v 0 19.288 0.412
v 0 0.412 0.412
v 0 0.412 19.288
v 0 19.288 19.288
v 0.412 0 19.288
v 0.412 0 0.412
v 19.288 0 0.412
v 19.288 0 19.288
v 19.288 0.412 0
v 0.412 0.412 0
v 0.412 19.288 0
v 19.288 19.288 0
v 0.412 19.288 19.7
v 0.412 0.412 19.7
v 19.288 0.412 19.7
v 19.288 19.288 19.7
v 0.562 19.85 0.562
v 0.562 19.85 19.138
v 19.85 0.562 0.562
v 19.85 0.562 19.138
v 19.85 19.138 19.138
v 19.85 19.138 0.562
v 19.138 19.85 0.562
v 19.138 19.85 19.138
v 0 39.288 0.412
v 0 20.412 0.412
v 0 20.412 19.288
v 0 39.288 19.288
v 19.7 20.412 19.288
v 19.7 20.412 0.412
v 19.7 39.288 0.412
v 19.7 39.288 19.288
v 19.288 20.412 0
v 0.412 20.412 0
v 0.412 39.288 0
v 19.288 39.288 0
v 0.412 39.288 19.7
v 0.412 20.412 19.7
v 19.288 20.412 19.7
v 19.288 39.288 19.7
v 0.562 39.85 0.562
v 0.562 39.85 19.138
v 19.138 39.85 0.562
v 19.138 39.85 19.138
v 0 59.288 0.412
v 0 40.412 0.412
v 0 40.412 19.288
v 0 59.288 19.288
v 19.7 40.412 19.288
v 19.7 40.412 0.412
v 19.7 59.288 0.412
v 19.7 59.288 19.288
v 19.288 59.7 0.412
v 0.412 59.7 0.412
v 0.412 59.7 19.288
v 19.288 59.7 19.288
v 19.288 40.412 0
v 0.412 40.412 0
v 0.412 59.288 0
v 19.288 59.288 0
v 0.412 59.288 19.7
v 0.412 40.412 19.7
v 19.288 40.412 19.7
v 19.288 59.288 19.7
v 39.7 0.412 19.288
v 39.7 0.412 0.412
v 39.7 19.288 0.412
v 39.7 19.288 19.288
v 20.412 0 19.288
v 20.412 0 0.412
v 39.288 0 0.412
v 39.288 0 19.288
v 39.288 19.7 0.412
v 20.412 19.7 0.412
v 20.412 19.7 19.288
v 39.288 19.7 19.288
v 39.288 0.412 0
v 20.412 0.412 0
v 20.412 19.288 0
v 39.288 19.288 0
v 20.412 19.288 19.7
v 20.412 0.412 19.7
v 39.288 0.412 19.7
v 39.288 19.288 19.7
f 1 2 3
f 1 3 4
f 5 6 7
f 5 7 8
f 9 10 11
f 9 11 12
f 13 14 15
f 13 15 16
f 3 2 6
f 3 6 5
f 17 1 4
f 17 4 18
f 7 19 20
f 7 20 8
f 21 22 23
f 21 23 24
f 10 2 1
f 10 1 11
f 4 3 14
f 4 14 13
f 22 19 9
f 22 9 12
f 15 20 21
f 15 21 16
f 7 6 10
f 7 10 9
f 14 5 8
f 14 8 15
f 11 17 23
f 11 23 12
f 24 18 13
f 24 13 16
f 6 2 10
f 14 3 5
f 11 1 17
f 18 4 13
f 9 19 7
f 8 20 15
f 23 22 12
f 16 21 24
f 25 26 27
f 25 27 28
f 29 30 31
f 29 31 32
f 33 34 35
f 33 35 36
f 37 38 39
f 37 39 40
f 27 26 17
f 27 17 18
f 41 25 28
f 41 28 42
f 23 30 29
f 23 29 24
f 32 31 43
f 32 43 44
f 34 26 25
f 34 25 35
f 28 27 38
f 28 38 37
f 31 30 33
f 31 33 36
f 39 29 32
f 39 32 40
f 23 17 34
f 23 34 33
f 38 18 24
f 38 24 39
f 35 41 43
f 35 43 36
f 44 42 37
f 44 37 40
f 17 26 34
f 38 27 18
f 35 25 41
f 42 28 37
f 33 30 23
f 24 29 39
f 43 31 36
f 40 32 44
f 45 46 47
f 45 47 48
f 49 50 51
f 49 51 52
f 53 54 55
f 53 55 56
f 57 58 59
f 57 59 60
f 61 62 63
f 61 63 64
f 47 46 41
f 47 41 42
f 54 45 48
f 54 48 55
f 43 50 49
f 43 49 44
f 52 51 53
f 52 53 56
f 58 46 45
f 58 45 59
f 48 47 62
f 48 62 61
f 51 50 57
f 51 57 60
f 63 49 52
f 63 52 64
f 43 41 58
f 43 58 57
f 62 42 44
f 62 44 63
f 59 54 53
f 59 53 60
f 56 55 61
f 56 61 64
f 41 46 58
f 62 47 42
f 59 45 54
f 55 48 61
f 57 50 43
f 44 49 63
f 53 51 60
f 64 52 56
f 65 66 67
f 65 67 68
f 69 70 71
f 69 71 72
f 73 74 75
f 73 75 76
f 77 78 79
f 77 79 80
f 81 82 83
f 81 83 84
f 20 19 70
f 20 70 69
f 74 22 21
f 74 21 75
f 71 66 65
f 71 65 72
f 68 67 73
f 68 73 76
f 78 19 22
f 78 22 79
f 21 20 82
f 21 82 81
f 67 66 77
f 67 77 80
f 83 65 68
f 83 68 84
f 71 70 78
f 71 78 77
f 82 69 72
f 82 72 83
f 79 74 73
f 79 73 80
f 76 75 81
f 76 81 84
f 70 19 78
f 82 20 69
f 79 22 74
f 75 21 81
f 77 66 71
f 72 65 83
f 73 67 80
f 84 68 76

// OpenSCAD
// Wongo piece 16: L. GPL-3.0.
// 20 mm lattice; 0.15 mm inward surface clearance; 0.5 mm chamfer.
// Mesh is identical to the STL; changing unit scales the complete finished mesh.
unit=20;
scale([unit/20,unit/20,unit/20]) polyhedron(points=[[0,19.28786797,0.41213203],[0,0.41213203,0.41213203],[0,0.41213203,19.28786797],[0,19.28786797,19.28786797],[0.41213203,0,19.28786797],[0.41213203,0,0.41213203],[19.28786797,0,0.41213203],[19.28786797,0,19.28786797],[19.28786797,0.41213203,0],[0.41213203,0.41213203,0],[0.41213203,19.28786797,0],[19.28786797,19.28786797,0],[0.41213203,19.28786797,19.7],[0.41213203,0.41213203,19.7],[19.28786797,0.41213203,19.7],[19.28786797,19.28786797,19.7],[0.56213203,19.85,0.56213203],[0.56213203,19.85,19.13786797],[19.85,0.56213203,0.56213203],[19.85,0.56213203,19.13786797],[19.85,19.13786797,19.13786797],[19.85,19.13786797,0.56213203],[19.13786797,19.85,0.56213203],[19.13786797,19.85,19.13786797],[0,39.28786797,0.41213203],[0,20.41213203,0.41213203],[0,20.41213203,19.28786797],[0,39.28786797,19.28786797],[19.7,20.41213203,19.28786797],[19.7,20.41213203,0.41213203],[19.7,39.28786797,0.41213203],[19.7,39.28786797,19.28786797],[19.28786797,20.41213203,0],[0.41213203,20.41213203,0],[0.41213203,39.28786797,0],[19.28786797,39.28786797,0],[0.41213203,39.28786797,19.7],[0.41213203,20.41213203,19.7],[19.28786797,20.41213203,19.7],[19.28786797,39.28786797,19.7],[0.56213203,39.85,0.56213203],[0.56213203,39.85,19.13786797],[19.13786797,39.85,0.56213203],[19.13786797,39.85,19.13786797],[0,59.28786797,0.41213203],[0,40.41213203,0.41213203],[0,40.41213203,19.28786797],[0,59.28786797,19.28786797],[19.7,40.41213203,19.28786797],[19.7,40.41213203,0.41213203],[19.7,59.28786797,0.41213203],[19.7,59.28786797,19.28786797],[19.28786797,59.7,0.41213203],[0.41213203,59.7,0.41213203],[0.41213203,59.7,19.28786797],[19.28786797,59.7,19.28786797],[19.28786797,40.41213203,0],[0.41213203,40.41213203,0],[0.41213203,59.28786797,0],[19.28786797,59.28786797,0],[0.41213203,59.28786797,19.7],[0.41213203,40.41213203,19.7],[19.28786797,40.41213203,19.7],[19.28786797,59.28786797,19.7],[39.7,0.41213203,19.28786797],[39.7,0.41213203,0.41213203],[39.7,19.28786797,0.41213203],[39.7,19.28786797,19.28786797],[20.41213203,0,19.28786797],[20.41213203,0,0.41213203],[39.28786797,0,0.41213203],[39.28786797,0,19.28786797],[39.28786797,19.7,0.41213203],[20.41213203,19.7,0.41213203],[20.41213203,19.7,19.28786797],[39.28786797,19.7,19.28786797],[39.28786797,0.41213203,0],[20.41213203,0.41213203,0],[20.41213203,19.28786797,0],[39.28786797,19.28786797,0],[20.41213203,19.28786797,19.7],[20.41213203,0.41213203,19.7],[39.28786797,0.41213203,19.7],[39.28786797,19.28786797,19.7]],faces=[[2,1,0],[3,2,0],[6,5,4],[7,6,4],[10,9,8],[11,10,8],[14,13,12],[15,14,12],[5,1,2],[4,5,2],[3,0,16],[17,3,16],[19,18,6],[7,19,6],[22,21,20],[23,22,20],[0,1,9],[10,0,9],[13,2,3],[12,13,3],[8,18,21],[11,8,21],[20,19,14],[15,20,14],[9,5,6],[8,9,6],[7,4,13],[14,7,13],[22,16,10],[11,22,10],[12,17,23],[15,12,23],[9,1,5],[4,2,13],[16,0,10],[12,3,17],[6,18,8],[14,19,7],[11,21,22],[23,20,15],[26,25,24],[27,26,24],[30,29,28],[31,30,28],[34,33,32],[35,34,32],[38,37,36],[39,38,36],[16,25,26],[17,16,26],[27,24,40],[41,27,40],[28,29,22],[23,28,22],[42,30,31],[43,42,31],[24,25,33],[34,24,33],[37,26,27],[36,37,27],[32,29,30],[35,32,30],[31,28,38],[39,31,38],[33,16,22],[32,33,22],[23,17,37],[38,23,37],[42,40,34],[35,42,34],[36,41,43],[39,36,43],[33,25,16],[17,26,37],[40,24,34],[36,27,41],[22,29,32],[38,28,23],[35,30,42],[43,31,39],[46,45,44],[47,46,44],[50,49,48],[51,50,48],[54,53,52],[55,54,52],[58,57,56],[59,58,56],[62,61,60],[63,62,60],[40,45,46],[41,40,46],[47,44,53],[54,47,53],[48,49,42],[43,48,42],[52,50,51],[55,52,51],[44,45,57],[58,44,57],[61,46,47],[60,61,47],[56,49,50],[59,56,50],[51,48,62],[63,51,62],[57,40,42],[56,57,42],[43,41,61],[62,43,61],[52,53,58],[59,52,58],[60,54,55],[63,60,55],[57,45,40],[41,46,61],[53,44,58],[60,47,54],[42,49,56],[62,48,43],[59,50,52],[55,51,63],[66,65,64],[67,66,64],[70,69,68],[71,70,68],[74,73,72],[75,74,72],[78,77,76],[79,78,76],[82,81,80],[83,82,80],[69,18,19],[68,69,19],[20,21,73],[74,20,73],[64,65,70],[71,64,70],[72,66,67],[75,72,67],[21,18,77],[78,21,77],[81,19,20],[80,81,20],[76,65,66],[79,76,66],[67,64,82],[83,67,82],[77,69,70],[76,77,70],[71,68,81],[82,71,81],[72,73,78],[79,72,78],[80,74,75],[83,80,75],[77,18,69],[68,19,81],[73,21,78],[80,20,74],[70,65,76],[82,64,71],[79,66,72],[75,67,83]],convexity=10);
